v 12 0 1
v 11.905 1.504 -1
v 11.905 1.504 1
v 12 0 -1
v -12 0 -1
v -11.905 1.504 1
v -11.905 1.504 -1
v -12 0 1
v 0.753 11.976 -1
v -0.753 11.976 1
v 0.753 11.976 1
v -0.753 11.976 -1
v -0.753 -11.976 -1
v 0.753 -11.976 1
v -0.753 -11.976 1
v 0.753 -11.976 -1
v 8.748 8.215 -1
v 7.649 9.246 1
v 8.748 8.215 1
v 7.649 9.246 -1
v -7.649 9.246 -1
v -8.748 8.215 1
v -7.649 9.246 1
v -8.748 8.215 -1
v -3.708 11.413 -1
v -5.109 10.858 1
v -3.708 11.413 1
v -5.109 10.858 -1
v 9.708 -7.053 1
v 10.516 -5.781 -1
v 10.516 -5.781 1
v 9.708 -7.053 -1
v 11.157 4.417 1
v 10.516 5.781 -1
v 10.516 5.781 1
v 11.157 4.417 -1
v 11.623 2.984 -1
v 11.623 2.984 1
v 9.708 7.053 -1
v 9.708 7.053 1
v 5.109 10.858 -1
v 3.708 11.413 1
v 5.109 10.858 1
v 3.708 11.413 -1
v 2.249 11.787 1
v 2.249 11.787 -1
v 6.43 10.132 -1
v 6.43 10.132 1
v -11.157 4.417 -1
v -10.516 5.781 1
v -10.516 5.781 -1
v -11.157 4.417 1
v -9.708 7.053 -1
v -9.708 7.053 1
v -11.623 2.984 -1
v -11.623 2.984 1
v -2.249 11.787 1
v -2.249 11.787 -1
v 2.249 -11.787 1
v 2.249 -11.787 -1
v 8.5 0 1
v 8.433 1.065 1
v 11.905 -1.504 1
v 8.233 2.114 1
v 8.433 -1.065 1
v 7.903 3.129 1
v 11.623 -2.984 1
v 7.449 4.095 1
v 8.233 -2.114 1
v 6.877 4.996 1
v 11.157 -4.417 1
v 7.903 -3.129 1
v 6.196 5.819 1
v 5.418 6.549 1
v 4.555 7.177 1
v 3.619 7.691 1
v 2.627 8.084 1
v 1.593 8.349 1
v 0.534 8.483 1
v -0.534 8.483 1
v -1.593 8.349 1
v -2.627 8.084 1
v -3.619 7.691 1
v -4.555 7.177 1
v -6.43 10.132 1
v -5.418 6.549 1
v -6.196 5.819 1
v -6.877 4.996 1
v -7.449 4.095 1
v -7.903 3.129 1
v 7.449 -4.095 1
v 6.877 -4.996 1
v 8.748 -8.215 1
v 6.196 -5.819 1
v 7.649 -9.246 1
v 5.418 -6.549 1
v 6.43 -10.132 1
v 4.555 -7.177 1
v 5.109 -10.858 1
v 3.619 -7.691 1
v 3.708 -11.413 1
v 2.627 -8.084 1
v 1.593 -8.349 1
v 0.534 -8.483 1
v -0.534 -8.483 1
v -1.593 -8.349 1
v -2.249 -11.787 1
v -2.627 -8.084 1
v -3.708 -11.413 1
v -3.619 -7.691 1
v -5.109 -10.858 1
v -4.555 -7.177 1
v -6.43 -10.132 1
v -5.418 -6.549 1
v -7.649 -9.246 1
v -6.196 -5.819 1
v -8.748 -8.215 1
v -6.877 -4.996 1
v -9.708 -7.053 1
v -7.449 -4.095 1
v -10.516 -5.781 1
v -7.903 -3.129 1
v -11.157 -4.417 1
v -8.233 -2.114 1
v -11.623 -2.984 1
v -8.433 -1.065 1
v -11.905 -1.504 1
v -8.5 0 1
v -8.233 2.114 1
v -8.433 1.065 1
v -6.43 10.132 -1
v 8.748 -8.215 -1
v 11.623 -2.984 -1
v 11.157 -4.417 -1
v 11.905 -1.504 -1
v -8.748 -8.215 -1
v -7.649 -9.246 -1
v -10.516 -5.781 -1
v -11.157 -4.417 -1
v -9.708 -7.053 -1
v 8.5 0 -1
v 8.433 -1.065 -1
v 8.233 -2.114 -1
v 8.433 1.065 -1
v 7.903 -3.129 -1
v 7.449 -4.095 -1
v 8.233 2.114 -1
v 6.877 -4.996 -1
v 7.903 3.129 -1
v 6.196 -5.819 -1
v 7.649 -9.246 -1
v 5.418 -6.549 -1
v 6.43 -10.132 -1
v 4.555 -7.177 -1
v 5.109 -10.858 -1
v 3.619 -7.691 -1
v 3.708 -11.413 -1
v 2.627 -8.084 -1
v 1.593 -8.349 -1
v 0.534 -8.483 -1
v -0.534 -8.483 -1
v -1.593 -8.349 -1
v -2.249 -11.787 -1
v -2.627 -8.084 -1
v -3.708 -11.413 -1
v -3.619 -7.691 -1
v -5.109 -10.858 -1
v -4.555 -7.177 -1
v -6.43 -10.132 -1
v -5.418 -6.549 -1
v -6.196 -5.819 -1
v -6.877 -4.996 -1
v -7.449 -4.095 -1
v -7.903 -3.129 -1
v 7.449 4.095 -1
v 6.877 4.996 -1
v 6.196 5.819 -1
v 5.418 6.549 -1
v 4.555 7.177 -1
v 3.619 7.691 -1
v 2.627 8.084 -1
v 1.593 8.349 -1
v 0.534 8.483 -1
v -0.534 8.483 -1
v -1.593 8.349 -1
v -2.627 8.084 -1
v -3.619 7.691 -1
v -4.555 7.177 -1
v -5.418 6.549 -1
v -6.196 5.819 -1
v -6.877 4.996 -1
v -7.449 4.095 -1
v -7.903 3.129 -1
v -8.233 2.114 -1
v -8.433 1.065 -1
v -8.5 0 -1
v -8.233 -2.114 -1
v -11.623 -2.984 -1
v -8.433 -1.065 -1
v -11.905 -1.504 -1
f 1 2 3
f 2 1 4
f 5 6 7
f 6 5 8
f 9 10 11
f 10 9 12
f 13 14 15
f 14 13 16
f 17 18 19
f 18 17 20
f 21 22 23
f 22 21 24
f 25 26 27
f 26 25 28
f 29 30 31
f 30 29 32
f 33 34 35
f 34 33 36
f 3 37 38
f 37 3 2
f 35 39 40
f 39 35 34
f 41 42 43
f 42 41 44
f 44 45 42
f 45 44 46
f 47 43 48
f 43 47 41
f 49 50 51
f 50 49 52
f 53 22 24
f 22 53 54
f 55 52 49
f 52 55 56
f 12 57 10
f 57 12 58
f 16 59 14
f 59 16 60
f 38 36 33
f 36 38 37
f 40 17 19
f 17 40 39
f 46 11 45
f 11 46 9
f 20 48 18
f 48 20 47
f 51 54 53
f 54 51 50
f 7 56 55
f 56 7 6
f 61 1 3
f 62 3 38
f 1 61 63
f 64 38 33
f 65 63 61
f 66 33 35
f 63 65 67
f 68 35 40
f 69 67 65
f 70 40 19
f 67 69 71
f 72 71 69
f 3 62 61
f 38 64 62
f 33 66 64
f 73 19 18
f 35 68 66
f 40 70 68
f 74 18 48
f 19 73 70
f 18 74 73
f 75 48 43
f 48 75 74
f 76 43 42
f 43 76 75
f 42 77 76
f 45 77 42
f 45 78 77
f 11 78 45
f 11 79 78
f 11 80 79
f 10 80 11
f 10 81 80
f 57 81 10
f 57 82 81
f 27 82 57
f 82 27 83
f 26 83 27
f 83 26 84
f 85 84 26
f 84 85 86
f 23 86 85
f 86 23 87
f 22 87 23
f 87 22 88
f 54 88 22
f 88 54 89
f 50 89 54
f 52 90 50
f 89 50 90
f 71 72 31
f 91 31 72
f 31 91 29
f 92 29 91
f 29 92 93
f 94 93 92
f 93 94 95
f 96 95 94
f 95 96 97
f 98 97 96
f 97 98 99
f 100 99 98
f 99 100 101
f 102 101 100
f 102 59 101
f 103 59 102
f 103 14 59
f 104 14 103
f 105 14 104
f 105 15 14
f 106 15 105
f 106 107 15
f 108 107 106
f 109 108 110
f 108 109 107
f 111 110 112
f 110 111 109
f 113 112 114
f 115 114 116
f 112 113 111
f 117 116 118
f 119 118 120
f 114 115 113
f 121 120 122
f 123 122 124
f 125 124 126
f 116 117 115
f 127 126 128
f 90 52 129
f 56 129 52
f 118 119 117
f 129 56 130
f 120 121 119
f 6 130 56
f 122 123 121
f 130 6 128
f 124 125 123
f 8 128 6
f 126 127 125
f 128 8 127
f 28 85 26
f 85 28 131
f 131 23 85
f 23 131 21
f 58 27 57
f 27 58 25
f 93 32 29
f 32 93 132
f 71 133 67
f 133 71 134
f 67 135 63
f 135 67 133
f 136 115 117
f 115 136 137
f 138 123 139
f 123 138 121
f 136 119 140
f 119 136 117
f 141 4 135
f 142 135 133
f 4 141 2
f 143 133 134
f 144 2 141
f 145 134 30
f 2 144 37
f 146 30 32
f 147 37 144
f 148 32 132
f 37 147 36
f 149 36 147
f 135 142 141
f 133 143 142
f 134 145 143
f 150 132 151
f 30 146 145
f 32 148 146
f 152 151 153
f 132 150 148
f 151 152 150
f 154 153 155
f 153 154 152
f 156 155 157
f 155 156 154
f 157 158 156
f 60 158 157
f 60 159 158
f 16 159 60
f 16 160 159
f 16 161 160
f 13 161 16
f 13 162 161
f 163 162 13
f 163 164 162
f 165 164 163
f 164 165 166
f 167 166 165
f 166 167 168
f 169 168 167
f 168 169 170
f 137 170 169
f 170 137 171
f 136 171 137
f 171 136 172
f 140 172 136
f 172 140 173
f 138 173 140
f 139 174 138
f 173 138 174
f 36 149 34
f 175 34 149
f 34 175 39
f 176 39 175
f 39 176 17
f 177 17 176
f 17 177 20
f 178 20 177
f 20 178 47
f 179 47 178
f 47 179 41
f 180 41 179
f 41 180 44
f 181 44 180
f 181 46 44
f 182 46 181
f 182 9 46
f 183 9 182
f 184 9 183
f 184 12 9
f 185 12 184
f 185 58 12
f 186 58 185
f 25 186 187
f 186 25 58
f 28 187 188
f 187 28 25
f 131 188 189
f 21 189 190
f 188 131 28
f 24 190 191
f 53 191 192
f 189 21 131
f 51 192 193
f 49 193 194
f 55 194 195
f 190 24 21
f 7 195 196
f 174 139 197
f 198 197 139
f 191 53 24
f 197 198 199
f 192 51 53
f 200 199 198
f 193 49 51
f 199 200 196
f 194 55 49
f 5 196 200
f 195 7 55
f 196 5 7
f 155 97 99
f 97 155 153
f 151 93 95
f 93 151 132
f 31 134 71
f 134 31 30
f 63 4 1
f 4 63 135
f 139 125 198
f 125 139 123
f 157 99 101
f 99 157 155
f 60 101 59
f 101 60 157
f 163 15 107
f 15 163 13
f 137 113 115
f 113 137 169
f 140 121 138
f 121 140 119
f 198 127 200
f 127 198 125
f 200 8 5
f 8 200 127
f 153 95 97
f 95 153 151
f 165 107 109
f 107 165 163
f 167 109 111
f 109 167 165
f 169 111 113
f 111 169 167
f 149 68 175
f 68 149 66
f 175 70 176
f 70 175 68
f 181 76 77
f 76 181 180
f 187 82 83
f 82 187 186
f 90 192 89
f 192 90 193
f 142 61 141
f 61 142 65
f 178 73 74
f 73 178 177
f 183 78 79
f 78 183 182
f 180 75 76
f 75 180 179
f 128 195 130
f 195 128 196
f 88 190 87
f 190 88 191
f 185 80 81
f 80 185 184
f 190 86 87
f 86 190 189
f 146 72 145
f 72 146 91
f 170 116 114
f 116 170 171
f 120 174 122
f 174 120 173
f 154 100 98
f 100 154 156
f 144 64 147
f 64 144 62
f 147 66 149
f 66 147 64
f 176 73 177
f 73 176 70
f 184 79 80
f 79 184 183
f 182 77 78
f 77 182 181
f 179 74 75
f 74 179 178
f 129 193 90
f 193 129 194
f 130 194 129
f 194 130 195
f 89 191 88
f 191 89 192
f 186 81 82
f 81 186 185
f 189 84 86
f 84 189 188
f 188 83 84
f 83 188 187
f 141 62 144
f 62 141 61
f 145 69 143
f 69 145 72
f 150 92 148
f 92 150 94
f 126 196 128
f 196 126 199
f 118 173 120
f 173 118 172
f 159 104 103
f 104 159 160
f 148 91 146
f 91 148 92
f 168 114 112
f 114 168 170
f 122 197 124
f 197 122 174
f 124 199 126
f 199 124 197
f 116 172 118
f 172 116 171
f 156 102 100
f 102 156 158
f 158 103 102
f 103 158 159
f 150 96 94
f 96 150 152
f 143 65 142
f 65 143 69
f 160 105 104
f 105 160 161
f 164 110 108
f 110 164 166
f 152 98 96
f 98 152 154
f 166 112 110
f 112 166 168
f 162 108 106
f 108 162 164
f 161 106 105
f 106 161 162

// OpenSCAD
$fn = 50;


difference() {
	union() {
		translate(v = [0, 0, -1.0000000000]) {
			cylinder(h = 2, r = 12.0000000000);
		}
	}
	union() {
		translate(v = [0, 0, -1.0000000000]) {
			cylinder(h = 2, r = 8.5000000000);
		}
	}
}
